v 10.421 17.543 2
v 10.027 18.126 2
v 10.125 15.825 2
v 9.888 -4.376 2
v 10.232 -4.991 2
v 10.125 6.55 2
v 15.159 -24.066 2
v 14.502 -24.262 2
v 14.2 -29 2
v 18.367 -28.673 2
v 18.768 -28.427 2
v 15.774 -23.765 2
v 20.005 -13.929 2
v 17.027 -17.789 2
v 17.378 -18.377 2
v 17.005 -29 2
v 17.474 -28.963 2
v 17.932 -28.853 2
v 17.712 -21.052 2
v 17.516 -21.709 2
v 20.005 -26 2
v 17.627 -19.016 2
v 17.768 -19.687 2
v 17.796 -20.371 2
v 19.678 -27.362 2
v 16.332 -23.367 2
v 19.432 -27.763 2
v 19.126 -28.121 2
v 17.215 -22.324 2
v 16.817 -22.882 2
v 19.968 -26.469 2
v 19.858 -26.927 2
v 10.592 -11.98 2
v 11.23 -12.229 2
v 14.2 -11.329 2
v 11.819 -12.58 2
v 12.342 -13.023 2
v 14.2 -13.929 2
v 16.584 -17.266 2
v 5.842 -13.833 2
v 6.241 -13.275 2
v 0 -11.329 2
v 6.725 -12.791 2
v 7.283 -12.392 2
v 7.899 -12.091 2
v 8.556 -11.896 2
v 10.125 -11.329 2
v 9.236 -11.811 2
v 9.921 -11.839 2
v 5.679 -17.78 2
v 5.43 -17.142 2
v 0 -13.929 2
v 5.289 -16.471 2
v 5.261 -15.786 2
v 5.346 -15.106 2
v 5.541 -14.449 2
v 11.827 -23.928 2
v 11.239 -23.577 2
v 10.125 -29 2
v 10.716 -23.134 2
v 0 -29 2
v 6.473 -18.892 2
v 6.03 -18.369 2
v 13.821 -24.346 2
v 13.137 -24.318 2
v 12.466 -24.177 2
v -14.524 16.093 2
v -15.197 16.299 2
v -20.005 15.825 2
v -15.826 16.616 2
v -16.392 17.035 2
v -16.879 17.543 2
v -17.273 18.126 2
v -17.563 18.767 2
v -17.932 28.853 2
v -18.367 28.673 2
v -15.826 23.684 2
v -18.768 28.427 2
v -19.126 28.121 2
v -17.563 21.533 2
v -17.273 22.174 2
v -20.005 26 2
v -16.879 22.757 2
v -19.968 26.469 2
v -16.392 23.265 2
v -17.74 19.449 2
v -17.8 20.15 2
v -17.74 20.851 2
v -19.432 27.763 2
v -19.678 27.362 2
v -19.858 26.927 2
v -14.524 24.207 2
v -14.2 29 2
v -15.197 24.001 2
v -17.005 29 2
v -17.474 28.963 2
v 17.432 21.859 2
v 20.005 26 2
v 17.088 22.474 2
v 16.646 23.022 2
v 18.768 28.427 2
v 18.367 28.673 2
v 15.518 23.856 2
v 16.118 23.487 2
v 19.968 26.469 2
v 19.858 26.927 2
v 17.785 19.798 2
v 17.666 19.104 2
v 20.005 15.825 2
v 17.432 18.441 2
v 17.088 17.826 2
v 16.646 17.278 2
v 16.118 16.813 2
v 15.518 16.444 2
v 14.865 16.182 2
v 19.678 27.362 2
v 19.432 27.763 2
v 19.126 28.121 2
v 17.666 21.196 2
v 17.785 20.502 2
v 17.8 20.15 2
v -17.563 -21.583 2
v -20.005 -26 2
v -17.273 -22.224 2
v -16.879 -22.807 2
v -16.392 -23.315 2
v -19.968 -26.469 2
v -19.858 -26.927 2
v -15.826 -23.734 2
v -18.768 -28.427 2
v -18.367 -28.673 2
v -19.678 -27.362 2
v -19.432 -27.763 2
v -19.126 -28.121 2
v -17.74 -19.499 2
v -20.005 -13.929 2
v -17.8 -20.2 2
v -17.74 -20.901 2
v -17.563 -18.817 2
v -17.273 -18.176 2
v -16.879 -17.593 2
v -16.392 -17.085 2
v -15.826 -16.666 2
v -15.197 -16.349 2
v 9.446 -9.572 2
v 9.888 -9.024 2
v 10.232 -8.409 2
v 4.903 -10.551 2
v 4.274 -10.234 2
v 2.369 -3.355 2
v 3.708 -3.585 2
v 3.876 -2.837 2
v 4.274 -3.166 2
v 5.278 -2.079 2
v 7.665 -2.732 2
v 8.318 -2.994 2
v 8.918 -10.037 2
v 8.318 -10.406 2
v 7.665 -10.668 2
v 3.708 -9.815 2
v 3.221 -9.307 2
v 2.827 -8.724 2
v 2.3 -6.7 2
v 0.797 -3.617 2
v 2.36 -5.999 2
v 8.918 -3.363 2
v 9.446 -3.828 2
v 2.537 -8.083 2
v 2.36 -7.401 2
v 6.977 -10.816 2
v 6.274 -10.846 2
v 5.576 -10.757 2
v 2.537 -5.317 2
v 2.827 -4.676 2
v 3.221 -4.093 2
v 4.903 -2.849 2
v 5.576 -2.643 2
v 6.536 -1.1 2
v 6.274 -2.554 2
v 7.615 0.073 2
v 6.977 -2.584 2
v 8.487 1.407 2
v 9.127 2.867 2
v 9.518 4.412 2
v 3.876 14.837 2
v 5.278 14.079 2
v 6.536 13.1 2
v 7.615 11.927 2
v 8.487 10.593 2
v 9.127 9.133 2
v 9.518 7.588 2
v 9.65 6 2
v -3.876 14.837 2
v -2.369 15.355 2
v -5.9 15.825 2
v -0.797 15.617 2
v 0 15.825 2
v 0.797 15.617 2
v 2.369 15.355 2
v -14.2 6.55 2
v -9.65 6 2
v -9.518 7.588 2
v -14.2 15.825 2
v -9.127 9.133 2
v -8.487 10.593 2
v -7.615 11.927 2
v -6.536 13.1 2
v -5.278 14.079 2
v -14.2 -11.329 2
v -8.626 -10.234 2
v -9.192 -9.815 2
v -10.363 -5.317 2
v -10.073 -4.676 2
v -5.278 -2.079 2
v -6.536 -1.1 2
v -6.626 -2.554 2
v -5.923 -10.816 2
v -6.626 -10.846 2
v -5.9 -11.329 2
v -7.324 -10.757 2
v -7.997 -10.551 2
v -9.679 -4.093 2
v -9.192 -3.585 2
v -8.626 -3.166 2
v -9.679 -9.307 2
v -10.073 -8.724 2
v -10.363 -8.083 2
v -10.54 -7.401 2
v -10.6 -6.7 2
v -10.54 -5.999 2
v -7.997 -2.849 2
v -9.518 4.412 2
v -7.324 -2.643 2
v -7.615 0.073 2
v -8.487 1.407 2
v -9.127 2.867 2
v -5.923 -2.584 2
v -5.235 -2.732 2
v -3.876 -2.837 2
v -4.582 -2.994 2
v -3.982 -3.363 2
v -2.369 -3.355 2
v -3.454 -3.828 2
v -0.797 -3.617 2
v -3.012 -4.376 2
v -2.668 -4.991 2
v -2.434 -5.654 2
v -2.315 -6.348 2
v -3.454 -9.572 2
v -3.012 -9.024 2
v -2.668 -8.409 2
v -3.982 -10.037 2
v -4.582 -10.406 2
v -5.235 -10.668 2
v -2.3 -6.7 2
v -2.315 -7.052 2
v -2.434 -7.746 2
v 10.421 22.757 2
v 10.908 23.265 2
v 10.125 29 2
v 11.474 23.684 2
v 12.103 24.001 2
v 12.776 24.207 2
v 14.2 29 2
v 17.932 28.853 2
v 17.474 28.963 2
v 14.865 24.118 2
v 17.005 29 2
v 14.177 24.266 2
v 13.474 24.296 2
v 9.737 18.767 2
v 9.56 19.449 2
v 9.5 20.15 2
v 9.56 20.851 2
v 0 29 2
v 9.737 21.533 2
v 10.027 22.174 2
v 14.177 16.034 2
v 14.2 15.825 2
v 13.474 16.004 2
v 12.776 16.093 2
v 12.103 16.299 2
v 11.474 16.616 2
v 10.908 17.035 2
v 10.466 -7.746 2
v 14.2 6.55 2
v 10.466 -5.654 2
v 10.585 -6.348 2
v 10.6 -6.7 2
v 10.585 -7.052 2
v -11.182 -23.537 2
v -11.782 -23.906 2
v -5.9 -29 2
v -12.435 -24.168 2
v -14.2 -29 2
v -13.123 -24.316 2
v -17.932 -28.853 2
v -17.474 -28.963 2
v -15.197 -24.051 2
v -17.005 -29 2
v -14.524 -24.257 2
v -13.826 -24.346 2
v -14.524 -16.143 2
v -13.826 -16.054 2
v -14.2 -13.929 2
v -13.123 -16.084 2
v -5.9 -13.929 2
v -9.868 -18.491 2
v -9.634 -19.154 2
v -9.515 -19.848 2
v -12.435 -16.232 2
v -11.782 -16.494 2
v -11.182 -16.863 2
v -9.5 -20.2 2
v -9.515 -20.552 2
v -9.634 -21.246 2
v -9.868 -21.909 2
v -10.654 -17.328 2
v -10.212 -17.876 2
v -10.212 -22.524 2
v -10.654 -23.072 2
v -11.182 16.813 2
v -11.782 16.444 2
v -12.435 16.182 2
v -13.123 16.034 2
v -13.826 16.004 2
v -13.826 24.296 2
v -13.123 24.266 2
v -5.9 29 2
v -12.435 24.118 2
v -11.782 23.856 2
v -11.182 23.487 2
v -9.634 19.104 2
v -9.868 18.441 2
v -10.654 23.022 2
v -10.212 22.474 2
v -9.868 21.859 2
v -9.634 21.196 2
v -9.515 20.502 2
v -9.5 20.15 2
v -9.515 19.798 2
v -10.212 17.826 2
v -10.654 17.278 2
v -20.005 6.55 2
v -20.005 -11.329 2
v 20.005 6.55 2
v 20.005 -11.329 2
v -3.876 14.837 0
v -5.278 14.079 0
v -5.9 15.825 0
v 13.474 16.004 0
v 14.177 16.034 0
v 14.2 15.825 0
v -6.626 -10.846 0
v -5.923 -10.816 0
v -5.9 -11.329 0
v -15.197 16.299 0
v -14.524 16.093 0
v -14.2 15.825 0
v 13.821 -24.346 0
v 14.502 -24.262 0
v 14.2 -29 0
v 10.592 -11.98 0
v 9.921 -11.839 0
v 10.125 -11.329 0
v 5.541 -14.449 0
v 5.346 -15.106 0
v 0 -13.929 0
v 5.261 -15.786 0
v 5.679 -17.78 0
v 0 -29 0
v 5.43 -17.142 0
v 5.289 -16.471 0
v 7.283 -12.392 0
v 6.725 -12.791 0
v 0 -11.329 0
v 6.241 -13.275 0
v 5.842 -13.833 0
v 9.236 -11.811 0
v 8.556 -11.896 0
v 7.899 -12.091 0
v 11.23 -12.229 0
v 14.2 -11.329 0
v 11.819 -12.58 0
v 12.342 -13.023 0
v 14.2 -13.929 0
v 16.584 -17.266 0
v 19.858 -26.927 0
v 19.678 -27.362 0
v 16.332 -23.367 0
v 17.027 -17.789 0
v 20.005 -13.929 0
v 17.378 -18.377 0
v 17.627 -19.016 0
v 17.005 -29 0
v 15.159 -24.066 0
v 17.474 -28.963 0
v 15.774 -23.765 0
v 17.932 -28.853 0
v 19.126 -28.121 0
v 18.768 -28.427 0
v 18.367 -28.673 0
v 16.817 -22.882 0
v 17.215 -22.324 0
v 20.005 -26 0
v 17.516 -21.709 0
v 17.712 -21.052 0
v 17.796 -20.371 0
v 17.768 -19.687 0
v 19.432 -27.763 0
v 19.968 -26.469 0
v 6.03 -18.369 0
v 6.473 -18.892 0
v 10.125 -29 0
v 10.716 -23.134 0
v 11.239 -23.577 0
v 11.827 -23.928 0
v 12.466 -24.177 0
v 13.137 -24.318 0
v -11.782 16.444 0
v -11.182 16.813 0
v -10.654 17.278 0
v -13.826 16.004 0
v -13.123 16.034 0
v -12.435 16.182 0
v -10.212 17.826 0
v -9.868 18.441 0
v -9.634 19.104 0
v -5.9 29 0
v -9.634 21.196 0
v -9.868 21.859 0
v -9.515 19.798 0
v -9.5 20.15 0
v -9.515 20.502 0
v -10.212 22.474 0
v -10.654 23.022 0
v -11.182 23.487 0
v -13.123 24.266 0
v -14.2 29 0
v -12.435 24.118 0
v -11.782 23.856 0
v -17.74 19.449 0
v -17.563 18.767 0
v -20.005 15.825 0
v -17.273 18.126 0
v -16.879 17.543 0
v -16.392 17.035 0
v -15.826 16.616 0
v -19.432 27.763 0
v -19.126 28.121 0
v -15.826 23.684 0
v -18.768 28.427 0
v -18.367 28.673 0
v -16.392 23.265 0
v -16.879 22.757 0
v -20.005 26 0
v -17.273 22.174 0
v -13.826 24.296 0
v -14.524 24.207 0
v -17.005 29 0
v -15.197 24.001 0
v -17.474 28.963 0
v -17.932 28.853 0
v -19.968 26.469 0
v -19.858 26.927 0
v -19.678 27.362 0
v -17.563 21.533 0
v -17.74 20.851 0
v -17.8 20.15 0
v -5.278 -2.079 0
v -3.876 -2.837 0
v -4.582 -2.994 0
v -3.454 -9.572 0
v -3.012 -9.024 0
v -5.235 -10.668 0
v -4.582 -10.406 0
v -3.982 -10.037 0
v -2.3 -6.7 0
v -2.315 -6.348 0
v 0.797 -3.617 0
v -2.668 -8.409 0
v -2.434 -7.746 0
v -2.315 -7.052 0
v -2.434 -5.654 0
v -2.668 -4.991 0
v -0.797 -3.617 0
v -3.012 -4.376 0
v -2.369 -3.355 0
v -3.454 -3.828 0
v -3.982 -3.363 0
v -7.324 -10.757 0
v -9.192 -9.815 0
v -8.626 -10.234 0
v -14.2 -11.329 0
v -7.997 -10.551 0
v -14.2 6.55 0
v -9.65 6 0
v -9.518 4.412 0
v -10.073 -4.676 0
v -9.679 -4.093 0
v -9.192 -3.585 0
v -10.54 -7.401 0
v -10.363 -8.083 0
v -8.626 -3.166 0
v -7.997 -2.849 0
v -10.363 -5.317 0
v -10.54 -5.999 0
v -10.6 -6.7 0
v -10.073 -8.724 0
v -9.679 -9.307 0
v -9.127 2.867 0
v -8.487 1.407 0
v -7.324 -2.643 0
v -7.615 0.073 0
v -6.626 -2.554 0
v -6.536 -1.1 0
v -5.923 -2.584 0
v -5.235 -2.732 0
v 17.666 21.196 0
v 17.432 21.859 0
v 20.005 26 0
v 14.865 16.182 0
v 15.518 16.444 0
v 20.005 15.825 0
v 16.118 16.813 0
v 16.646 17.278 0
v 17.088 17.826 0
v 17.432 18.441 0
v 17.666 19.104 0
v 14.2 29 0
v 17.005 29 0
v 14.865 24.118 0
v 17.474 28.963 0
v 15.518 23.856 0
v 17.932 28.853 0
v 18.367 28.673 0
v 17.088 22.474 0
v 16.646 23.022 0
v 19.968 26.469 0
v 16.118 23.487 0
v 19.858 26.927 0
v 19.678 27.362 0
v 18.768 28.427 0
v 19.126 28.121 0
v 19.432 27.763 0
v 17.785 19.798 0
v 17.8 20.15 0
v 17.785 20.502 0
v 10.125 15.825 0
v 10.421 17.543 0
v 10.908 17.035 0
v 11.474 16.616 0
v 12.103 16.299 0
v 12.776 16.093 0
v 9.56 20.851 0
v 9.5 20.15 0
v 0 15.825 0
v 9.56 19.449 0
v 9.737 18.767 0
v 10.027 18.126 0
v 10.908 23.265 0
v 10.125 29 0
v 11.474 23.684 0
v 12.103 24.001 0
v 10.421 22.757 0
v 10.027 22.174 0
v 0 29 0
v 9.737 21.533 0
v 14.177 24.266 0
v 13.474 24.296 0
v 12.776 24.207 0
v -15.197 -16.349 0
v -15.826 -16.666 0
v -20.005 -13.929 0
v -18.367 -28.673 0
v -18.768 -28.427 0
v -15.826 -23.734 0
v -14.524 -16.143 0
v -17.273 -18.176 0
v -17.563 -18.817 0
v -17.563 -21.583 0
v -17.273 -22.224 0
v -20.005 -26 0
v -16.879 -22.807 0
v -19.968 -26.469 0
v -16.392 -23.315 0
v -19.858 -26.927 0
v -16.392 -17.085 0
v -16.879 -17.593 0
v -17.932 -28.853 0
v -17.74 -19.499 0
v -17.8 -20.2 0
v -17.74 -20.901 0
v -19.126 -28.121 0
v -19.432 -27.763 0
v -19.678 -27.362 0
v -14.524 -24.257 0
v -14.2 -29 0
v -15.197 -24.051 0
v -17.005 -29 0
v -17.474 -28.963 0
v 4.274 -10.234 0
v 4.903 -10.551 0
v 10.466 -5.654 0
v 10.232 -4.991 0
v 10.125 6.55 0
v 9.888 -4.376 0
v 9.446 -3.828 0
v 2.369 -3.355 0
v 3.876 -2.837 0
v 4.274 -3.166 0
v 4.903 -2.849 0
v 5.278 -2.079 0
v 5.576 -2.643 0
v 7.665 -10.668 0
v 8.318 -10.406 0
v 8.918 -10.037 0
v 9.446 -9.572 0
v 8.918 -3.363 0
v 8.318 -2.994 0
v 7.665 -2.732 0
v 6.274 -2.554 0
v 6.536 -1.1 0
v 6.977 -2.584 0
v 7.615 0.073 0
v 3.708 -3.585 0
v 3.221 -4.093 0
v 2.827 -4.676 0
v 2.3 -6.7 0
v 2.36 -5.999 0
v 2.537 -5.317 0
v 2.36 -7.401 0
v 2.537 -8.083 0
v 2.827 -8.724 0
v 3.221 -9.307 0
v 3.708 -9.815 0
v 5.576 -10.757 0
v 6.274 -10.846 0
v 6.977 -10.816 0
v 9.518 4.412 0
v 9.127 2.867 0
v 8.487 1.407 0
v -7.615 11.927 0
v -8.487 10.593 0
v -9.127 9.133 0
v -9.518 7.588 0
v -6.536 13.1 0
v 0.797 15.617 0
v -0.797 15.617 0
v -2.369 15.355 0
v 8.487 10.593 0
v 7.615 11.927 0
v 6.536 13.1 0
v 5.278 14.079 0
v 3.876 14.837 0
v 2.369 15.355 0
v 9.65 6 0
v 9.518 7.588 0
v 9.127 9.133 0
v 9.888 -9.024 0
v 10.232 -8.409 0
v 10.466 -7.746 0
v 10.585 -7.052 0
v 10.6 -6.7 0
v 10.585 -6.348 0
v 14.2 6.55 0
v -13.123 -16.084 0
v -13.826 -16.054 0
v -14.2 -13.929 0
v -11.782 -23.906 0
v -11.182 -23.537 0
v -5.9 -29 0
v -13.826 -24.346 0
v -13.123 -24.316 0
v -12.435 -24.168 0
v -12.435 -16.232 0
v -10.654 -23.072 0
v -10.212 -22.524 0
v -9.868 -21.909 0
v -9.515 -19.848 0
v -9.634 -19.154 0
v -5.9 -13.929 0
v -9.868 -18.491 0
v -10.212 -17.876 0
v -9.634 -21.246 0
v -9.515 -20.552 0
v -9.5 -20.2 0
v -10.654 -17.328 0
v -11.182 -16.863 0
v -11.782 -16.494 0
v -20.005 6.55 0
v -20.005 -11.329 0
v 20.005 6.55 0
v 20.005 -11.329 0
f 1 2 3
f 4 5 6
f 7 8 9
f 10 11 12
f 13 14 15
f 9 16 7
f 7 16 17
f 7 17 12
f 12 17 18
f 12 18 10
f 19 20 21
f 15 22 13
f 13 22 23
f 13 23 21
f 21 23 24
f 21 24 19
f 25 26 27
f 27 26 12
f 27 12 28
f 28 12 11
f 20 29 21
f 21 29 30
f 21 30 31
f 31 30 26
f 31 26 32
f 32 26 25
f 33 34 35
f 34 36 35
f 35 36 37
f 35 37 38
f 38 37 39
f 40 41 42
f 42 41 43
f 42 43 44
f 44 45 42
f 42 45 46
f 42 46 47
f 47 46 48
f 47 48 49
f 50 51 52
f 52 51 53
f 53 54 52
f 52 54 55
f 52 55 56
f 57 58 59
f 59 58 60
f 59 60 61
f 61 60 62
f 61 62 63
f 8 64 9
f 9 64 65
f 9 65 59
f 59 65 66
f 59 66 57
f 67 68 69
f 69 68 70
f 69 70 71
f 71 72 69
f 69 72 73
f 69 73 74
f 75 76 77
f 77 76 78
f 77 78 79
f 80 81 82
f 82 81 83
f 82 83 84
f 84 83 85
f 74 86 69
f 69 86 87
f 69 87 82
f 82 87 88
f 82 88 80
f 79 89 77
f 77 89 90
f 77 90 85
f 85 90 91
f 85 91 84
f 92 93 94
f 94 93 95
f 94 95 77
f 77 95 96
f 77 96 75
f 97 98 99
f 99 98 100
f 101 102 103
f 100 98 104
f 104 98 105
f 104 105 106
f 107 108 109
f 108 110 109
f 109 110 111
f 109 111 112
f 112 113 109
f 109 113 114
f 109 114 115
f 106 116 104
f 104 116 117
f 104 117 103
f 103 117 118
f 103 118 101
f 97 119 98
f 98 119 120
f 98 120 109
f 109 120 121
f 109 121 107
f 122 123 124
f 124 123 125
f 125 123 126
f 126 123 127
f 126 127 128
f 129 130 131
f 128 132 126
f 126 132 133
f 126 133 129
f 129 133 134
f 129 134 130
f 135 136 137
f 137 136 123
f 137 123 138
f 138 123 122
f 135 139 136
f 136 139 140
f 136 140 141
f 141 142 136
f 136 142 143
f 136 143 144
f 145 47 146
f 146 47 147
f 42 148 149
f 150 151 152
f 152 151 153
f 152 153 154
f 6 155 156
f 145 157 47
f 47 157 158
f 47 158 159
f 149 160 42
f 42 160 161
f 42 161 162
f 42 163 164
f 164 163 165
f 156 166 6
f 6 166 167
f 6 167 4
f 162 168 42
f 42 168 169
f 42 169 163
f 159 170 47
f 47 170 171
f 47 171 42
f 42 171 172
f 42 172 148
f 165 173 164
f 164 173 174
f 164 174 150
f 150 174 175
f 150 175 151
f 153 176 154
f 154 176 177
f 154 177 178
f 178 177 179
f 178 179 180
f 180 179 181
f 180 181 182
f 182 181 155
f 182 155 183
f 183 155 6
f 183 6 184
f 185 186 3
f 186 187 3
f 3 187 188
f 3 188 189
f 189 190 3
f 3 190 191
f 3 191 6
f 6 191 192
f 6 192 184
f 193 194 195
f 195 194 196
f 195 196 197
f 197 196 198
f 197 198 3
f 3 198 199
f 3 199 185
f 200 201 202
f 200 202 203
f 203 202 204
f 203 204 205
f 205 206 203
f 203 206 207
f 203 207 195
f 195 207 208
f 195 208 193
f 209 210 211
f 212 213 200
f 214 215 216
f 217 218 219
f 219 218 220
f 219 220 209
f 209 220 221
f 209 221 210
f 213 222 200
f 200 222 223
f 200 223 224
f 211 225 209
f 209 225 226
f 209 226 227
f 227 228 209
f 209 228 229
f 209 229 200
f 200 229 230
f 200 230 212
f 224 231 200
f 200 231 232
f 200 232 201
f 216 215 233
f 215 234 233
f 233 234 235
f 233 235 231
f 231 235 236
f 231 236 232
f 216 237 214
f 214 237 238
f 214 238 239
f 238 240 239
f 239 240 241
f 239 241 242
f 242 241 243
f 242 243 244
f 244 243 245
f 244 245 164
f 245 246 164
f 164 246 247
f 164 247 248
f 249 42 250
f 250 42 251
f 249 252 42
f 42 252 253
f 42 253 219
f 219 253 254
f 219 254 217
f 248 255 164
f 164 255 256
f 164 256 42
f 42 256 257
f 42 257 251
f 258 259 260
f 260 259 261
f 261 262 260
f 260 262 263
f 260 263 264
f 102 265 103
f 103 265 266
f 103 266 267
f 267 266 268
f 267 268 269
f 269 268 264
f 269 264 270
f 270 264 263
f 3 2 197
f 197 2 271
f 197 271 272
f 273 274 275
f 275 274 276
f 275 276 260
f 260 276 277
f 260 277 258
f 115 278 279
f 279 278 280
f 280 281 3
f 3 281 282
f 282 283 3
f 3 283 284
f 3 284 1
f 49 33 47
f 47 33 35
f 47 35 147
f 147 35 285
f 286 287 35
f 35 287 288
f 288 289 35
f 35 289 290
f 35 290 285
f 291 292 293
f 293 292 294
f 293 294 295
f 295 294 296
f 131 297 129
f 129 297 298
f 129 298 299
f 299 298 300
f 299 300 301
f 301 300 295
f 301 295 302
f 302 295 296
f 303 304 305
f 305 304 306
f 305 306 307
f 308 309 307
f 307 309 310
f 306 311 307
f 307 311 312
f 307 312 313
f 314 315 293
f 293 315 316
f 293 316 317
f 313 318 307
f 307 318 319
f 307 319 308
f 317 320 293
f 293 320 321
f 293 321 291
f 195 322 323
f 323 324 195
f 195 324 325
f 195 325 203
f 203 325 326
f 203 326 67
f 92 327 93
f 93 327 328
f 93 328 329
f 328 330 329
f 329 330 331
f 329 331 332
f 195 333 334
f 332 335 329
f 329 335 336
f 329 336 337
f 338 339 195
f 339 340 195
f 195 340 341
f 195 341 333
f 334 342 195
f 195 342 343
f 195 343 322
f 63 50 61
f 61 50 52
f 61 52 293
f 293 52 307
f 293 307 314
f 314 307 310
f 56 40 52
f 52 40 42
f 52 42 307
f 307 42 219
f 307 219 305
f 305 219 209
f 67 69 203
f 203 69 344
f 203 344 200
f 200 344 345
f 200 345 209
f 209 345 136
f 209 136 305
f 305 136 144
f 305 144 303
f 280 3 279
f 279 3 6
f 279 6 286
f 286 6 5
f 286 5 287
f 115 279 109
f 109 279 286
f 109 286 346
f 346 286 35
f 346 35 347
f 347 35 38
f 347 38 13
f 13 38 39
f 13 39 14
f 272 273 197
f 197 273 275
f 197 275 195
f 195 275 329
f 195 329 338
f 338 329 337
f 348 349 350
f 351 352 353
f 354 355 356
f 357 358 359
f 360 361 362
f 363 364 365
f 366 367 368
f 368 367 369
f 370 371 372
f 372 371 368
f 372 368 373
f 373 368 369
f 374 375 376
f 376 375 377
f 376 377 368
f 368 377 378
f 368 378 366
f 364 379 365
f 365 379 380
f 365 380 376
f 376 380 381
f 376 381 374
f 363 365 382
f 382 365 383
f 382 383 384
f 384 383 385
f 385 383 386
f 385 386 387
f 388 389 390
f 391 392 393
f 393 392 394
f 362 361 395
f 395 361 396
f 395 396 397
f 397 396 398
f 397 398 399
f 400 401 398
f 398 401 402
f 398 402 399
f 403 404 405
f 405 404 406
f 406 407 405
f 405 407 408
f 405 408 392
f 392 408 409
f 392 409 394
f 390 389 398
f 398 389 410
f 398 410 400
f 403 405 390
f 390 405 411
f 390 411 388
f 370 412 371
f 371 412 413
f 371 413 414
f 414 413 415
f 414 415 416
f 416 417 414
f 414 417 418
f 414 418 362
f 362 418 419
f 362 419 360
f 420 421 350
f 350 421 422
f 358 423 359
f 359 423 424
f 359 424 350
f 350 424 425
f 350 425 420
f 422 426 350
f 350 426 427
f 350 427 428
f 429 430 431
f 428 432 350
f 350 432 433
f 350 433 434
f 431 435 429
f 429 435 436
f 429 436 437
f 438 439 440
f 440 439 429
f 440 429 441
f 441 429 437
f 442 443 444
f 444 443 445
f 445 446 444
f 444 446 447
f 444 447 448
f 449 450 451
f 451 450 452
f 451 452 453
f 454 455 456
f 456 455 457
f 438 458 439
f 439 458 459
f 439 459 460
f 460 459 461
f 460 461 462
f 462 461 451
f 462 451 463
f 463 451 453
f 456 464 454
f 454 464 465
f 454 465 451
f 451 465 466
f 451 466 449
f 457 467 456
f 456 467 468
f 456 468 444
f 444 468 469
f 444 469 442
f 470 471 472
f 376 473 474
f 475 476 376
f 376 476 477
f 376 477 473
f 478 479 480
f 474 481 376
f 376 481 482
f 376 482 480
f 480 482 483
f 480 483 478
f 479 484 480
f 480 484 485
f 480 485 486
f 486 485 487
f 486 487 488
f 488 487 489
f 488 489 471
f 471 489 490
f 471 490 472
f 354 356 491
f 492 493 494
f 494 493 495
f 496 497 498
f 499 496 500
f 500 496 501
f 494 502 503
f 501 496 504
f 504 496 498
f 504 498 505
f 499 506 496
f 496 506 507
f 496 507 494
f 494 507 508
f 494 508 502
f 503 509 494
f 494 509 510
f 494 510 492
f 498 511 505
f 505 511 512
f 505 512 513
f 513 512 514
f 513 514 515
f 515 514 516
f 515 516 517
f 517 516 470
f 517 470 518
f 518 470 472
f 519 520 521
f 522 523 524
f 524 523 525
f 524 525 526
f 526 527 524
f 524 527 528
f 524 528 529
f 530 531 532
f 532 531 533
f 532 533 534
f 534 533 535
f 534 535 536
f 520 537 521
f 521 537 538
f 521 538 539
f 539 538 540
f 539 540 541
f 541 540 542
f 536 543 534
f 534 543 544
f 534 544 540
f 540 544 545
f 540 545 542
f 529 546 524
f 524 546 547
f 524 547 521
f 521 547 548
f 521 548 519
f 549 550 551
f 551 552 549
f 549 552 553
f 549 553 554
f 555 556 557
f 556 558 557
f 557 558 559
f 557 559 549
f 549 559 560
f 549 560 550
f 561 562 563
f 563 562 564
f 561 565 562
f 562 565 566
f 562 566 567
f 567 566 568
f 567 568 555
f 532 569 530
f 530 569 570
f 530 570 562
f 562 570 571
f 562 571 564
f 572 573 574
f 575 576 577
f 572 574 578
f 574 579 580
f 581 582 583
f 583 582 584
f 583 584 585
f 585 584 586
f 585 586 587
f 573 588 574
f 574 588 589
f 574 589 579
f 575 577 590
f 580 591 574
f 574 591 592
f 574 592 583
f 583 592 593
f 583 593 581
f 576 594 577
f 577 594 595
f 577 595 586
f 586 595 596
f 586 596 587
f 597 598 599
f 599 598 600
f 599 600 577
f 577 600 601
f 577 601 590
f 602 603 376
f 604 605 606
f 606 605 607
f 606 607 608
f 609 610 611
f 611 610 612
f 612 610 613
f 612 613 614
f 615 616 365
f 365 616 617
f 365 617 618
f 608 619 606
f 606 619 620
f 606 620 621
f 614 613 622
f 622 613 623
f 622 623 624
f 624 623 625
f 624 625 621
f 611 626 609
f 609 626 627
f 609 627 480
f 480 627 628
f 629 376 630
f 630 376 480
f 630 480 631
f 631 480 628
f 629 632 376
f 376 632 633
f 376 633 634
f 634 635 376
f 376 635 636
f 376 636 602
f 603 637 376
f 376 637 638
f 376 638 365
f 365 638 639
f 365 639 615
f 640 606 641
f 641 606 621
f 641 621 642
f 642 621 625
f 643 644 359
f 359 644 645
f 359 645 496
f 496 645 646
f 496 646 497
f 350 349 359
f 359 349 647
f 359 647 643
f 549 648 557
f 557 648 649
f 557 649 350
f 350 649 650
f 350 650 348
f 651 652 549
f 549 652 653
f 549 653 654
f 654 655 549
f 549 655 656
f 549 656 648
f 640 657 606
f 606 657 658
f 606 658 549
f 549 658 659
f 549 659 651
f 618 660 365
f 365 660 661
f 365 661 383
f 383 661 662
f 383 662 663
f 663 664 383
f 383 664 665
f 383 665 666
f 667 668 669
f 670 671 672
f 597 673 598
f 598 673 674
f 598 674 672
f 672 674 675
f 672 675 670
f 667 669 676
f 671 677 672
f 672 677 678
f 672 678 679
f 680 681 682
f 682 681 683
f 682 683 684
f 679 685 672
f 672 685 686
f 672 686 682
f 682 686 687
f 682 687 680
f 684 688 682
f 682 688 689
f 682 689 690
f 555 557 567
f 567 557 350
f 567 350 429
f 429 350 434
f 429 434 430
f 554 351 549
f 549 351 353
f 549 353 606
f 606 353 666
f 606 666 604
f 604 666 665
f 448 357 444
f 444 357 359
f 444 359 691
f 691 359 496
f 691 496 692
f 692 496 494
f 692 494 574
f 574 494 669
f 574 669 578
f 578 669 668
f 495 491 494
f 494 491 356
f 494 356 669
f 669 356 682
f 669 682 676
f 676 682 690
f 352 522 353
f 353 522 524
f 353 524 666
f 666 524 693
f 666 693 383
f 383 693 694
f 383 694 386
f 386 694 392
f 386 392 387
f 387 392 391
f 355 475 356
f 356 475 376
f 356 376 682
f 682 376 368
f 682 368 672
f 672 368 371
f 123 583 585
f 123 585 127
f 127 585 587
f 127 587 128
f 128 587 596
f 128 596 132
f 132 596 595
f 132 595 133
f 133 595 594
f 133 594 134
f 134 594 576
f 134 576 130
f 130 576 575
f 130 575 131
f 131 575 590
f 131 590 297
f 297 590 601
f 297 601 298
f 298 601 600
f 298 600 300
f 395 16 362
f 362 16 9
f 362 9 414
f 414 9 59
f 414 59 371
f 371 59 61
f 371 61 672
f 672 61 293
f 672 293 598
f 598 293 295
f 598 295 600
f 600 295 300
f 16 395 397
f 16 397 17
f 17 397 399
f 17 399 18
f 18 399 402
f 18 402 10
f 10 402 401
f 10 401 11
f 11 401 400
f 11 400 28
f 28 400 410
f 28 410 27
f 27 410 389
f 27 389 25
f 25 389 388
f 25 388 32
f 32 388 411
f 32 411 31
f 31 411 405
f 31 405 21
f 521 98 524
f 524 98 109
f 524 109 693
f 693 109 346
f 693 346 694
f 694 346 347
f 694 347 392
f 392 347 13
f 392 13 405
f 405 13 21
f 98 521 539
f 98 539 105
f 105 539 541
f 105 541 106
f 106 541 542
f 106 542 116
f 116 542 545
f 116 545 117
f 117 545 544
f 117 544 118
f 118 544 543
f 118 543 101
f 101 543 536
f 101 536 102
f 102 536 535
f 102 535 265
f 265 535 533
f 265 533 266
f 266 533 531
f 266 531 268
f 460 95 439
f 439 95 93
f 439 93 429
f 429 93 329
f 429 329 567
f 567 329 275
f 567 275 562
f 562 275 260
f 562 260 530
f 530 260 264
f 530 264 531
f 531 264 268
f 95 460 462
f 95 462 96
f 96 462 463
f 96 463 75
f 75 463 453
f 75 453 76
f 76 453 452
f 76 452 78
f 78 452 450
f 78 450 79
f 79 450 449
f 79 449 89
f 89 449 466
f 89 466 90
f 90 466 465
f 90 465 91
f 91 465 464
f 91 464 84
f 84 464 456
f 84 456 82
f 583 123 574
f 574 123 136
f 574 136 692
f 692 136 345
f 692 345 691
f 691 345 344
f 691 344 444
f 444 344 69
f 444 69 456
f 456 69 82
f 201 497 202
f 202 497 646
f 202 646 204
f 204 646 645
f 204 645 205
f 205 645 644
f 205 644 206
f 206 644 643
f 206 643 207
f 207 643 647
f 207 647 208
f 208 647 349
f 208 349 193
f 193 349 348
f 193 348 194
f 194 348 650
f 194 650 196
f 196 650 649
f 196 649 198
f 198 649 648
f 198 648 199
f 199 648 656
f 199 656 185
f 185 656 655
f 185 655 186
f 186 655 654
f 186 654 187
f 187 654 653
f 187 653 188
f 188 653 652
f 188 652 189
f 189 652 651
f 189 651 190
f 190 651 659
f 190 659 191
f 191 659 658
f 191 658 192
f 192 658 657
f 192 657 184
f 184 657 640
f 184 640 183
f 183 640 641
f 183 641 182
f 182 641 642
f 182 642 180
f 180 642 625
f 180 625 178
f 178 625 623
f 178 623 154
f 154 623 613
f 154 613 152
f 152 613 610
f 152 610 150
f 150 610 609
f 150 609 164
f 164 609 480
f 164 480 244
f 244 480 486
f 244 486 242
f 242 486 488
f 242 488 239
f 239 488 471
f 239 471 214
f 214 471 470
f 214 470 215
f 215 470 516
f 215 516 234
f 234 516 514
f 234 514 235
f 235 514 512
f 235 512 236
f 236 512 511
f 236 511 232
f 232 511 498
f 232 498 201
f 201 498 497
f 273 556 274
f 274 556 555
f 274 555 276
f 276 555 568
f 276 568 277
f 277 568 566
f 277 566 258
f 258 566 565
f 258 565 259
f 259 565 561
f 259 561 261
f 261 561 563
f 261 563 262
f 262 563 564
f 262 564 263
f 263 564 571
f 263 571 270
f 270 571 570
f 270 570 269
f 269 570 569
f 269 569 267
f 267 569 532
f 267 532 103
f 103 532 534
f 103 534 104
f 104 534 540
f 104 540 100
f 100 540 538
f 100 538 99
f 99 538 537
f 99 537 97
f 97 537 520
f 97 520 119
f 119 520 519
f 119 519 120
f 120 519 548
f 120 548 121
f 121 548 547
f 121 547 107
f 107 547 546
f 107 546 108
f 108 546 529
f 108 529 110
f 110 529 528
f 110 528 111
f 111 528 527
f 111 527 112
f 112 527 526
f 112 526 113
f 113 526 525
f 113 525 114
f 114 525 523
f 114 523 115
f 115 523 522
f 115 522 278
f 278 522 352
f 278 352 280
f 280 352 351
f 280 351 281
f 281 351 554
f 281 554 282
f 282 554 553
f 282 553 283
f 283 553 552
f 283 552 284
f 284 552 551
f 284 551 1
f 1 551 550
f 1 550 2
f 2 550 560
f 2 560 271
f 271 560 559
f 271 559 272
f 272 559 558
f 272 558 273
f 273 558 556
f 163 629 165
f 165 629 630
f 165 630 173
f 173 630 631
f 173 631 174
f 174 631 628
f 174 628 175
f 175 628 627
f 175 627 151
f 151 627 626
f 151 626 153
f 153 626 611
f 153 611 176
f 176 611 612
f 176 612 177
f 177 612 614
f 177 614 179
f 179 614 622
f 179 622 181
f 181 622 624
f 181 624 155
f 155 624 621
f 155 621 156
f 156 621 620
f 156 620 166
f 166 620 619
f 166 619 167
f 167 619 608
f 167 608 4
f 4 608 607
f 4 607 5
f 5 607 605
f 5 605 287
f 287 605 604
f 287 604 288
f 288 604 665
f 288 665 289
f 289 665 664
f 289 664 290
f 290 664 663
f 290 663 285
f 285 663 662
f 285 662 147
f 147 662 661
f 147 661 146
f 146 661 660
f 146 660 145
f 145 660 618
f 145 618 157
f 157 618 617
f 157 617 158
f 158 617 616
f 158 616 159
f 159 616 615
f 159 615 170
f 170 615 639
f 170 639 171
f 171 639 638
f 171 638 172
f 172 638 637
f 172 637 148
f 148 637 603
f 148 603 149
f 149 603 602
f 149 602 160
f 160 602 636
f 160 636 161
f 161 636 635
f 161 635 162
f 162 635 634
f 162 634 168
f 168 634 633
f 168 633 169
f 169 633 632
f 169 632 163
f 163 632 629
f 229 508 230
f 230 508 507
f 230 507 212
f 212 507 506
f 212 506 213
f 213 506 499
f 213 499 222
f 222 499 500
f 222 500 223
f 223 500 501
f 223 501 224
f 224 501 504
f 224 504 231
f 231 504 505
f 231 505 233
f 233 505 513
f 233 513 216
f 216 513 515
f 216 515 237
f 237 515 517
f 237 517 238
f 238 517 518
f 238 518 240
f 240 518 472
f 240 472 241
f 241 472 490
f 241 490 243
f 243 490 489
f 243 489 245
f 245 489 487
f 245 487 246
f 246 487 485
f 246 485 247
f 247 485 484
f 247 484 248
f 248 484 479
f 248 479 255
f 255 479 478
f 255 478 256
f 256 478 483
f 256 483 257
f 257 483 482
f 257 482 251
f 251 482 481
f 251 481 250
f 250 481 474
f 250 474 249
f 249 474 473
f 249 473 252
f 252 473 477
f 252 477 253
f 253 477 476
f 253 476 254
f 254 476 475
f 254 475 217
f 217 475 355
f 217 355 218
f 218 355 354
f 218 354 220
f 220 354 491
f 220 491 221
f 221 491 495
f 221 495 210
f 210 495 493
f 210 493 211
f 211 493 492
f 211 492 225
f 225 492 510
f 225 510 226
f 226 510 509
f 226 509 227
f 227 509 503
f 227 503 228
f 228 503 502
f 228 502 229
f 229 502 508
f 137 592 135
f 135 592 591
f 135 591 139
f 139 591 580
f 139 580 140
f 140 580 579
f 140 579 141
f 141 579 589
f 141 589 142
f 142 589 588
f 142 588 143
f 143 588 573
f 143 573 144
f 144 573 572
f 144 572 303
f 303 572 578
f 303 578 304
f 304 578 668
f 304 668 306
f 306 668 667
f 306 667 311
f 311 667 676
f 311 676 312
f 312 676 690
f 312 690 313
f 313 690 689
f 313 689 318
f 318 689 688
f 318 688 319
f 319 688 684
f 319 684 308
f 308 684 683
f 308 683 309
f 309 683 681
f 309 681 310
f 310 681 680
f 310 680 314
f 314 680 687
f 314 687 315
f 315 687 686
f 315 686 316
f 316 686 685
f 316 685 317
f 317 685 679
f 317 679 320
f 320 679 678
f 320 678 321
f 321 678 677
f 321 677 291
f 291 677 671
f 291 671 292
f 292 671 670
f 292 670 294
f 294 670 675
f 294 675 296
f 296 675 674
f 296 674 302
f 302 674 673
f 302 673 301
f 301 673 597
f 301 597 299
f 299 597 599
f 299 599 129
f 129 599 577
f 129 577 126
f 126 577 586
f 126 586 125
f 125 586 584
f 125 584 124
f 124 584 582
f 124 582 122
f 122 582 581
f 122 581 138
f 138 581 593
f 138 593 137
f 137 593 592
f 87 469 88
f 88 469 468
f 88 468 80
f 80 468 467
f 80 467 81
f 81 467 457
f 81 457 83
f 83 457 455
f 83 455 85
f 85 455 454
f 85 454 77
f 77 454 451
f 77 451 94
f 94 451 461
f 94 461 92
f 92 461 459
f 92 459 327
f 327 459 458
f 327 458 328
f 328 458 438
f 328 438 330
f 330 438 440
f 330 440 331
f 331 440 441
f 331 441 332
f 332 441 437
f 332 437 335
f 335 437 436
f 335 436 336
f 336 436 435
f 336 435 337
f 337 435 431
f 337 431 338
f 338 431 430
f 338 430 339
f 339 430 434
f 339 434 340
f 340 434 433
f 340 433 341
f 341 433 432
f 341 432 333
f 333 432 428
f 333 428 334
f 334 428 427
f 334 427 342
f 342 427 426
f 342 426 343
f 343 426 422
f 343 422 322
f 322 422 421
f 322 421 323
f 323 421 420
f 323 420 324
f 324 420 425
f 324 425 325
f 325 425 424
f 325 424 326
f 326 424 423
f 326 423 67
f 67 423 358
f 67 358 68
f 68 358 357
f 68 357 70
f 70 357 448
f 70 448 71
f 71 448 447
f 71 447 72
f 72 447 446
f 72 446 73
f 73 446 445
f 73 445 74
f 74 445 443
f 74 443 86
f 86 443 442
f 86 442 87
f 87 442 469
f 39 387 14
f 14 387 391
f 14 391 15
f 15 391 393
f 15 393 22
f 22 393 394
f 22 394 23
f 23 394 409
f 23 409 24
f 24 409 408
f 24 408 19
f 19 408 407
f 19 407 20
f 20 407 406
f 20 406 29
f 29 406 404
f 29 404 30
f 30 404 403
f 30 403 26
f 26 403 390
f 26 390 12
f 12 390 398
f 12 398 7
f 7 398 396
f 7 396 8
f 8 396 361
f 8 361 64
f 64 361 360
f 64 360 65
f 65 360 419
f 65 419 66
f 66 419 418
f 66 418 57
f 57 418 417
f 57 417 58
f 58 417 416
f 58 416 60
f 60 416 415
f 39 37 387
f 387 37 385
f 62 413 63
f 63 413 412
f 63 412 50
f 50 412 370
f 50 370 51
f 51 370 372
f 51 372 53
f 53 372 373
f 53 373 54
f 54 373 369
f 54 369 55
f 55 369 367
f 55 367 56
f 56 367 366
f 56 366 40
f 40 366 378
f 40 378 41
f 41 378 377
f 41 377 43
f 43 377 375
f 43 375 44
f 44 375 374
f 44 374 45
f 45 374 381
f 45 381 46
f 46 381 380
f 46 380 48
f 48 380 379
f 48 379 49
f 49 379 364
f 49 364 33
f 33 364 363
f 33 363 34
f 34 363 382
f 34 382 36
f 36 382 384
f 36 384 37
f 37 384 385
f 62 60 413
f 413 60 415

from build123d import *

# Parameters (mm, degrees)
SKETCH1_R           = 9.65
SKETCH1_R_2         = 4.15
BOSS_EXTRUDE1_DEPTH = 2


with BuildPart() as part:
    # Sketch1 → Boss-Extrude1 (new body)
    with BuildSketch(Plane.XY):
        with BuildLine():
            Line((17.005, -29), (-17.005, -29))
            ThreePointArc((-17.005, -29), (-19.126320344, -28.121320344), (-20.005, -26))
            Line((-20.005, -26), (-20.005, 26))
            ThreePointArc((-20.005, 26), (-19.126320344, 28.121320344), (-17.005, 29))
            Line((-17.005, 29), (17.005, 29))
            ThreePointArc((17.005, 29), (19.126320344, 28.121320344), (20.005, 26))
            Line((20.005, 26), (20.005, -26))
            ThreePointArc((20.005, -26), (19.126320344, -28.121320344), (17.005, -29))
        make_face()
        with Locations((0, 6)):
            Circle(SKETCH1_R, mode=Mode.SUBTRACT)
        with Locations((13.65, 20.15)):
            Circle(SKETCH1_R_2, mode=Mode.SUBTRACT)
        with Locations((6.45, -6.7)):
            Circle(SKETCH1_R_2, mode=Mode.SUBTRACT)
        with Locations((-6.45, -6.7)):
            Circle(SKETCH1_R_2, mode=Mode.SUBTRACT)
        with Locations((-13.65, -20.2)):
            Circle(SKETCH1_R_2, mode=Mode.SUBTRACT)
        with Locations((-13.65, 20.15)):
            Circle(SKETCH1_R_2, mode=Mode.SUBTRACT)
        with BuildLine():
            Line((10.715506858, -23.134493142), (6.472866171, -18.891852455))
            ThreePointArc((6.472866171, -18.891852455), (6.472866171, -13.022866171), (12.341852455, -13.022866171))
            Line((12.341852455, -13.022866171), (16.584493142, -17.265506858))
            ThreePointArc((16.584493142, -17.265506858), (16.584493142, -23.134493142), (10.715506858, -23.134493142))
        make_face(mode=Mode.SUBTRACT)
    extrude(amount=BOSS_EXTRUDE1_DEPTH)


solid = part.part
